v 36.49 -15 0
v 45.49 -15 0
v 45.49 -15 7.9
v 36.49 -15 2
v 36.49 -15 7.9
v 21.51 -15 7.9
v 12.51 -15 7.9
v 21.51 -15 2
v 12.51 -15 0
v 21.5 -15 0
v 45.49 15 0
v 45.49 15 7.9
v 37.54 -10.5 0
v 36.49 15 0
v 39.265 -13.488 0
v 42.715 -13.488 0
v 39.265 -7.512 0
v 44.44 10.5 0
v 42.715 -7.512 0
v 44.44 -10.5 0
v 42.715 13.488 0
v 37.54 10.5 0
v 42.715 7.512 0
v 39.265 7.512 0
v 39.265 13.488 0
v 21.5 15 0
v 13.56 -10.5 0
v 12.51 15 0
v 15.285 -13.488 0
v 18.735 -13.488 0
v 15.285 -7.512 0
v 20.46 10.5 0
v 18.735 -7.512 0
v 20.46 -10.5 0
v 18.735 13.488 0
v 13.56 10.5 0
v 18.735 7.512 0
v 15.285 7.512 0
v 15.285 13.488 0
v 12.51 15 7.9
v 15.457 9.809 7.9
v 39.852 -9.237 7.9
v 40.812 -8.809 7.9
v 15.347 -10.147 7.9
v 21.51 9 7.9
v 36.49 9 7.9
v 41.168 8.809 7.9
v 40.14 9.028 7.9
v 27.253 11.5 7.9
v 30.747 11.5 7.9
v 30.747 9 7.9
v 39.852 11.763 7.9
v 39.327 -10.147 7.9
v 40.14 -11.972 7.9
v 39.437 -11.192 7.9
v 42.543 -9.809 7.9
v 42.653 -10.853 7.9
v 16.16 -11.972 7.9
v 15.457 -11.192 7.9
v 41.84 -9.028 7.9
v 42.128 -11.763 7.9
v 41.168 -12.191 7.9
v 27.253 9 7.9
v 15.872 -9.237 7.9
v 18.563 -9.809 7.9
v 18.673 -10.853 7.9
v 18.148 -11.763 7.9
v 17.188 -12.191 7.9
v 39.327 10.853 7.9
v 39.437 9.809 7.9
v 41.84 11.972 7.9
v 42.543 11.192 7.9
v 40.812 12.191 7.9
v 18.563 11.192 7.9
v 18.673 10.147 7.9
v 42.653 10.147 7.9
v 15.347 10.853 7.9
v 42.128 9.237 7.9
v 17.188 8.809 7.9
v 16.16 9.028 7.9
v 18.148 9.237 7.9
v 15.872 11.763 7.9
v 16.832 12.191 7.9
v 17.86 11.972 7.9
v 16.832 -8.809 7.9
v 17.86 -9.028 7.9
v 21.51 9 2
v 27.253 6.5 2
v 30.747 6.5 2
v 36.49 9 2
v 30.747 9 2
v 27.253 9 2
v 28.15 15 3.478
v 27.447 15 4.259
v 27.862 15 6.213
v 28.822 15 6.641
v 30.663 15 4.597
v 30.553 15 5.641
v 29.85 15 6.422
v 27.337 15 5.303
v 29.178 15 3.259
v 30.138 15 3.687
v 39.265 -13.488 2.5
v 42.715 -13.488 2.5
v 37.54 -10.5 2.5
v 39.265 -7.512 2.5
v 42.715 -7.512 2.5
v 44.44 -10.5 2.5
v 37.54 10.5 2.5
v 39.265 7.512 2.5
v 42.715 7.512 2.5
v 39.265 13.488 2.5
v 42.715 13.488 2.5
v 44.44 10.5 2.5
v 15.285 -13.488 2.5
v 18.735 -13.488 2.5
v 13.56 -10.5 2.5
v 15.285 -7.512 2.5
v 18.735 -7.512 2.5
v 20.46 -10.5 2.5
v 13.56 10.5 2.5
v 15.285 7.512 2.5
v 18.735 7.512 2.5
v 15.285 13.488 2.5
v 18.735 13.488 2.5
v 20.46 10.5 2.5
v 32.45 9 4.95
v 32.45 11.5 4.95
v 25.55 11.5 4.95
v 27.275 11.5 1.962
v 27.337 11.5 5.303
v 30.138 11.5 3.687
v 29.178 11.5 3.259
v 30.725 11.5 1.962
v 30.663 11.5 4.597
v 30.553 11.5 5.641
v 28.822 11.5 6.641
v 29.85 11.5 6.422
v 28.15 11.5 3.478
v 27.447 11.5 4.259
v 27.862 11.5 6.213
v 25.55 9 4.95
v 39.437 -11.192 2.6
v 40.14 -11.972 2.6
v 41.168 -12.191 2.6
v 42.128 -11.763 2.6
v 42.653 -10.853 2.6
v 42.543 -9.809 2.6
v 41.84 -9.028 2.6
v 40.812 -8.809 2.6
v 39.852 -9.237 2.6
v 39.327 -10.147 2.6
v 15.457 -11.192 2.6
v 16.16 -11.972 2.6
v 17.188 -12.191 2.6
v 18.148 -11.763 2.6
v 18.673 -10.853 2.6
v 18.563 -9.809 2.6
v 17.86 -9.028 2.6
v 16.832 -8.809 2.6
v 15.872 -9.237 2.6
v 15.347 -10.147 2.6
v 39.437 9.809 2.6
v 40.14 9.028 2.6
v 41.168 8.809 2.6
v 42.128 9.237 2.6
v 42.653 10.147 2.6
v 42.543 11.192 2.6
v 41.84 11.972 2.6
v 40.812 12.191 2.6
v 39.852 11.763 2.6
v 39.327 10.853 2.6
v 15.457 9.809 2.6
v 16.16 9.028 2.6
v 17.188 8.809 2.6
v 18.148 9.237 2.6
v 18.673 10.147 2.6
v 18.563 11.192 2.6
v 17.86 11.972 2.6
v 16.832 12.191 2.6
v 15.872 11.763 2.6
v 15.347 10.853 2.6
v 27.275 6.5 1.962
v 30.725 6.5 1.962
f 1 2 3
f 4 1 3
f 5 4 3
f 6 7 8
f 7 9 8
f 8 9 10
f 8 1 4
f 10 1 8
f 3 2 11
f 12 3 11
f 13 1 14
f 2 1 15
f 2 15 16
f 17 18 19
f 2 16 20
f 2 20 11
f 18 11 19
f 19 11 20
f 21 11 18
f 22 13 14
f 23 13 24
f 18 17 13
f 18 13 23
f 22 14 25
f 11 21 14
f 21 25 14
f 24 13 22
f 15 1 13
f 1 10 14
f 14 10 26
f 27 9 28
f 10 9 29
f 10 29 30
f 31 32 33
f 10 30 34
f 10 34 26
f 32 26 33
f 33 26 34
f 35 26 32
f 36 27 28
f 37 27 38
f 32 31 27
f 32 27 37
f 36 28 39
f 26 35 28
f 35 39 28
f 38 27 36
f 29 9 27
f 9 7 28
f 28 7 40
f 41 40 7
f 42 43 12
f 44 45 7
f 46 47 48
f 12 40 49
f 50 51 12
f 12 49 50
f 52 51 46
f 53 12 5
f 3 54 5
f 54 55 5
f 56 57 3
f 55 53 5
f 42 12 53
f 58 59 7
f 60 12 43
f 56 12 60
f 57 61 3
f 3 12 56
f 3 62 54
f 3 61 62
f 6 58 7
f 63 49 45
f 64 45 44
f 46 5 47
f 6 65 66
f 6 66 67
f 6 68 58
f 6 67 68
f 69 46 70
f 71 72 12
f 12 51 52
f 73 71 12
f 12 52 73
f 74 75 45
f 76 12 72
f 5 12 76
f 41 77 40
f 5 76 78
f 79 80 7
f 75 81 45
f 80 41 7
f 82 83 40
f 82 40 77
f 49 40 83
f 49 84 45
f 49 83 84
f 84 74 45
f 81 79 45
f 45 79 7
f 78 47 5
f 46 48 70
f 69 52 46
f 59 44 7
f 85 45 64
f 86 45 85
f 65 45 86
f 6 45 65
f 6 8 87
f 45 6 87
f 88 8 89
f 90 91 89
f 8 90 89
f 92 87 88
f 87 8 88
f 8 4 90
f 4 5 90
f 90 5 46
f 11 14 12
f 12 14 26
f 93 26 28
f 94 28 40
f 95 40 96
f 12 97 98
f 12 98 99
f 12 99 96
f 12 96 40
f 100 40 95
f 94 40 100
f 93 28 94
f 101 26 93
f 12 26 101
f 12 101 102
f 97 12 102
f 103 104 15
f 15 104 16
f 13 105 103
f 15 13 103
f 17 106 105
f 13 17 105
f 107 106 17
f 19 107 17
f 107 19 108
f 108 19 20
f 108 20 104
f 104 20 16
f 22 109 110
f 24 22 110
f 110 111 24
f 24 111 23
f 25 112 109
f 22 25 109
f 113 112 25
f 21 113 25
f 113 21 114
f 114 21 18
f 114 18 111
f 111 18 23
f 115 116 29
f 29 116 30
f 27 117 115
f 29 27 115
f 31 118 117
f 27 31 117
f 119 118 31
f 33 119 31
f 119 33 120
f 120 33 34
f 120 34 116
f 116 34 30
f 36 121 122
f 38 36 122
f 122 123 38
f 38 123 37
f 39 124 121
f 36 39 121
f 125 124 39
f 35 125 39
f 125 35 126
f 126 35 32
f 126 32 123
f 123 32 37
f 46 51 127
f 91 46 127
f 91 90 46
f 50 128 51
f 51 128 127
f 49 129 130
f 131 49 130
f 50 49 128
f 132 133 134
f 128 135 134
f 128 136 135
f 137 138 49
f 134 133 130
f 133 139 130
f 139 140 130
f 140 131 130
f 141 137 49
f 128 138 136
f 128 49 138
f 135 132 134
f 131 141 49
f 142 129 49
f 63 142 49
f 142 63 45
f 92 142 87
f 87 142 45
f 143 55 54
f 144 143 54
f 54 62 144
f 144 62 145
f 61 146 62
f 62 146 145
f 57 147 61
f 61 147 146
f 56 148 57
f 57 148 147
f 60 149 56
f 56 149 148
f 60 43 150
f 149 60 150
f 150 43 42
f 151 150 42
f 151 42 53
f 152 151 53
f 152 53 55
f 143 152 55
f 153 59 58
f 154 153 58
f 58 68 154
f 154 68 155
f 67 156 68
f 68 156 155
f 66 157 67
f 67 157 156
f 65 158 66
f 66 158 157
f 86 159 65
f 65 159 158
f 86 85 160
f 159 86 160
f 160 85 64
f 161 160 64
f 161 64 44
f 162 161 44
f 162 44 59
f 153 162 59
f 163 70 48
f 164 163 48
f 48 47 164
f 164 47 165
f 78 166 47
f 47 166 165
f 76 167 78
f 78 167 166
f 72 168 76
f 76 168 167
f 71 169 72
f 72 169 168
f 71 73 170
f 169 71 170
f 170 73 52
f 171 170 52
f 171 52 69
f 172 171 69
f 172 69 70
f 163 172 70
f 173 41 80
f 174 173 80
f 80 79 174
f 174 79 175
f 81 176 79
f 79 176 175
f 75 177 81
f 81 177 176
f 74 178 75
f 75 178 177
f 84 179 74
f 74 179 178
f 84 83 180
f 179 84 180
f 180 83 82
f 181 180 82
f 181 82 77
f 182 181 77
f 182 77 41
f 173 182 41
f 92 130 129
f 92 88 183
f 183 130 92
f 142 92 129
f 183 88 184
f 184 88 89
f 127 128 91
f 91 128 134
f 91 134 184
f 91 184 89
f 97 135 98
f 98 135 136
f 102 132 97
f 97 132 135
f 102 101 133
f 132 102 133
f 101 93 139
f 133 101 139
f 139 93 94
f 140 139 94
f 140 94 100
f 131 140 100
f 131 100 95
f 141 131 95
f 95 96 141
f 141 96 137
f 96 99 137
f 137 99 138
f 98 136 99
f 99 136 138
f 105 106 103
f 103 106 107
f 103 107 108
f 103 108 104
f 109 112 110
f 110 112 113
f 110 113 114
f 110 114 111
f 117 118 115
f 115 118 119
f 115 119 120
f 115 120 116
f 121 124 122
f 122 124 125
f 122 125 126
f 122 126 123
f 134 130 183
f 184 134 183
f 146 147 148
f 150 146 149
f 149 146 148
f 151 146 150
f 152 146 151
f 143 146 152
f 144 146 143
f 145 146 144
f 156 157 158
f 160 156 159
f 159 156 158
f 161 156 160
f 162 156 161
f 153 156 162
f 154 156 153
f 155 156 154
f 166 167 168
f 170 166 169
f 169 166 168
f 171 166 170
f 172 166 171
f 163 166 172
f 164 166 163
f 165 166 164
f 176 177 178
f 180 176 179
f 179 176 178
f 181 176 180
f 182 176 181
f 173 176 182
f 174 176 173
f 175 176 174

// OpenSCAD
// Y-belt retainer/tensioner
// May 2012 John Newman
// June 2012 Luis Andrade

// This parameter deterimes how far the belt is held above the deck
dRise = 0;				// Added to the depth to make the belt run horizontal

// Belt dimensions - These are for T5
//tBase = 1.5;			// Thickness of belt base
//tFull = 2.7;			// Thickness of Belt at teeth
//wTooth = 2.6;			// Width of tooth (not actual, req)
//wSpace = 2.4;			// Width of space

// Belt dimensions - These are for T2.5
//tBase = 1.25;			// Thickness of belt base
//tFull = 2.0;			// Thickness of Belt at teeth
//wTooth = 1.4;			// Width of tooth (not actual, req)
//wSpace = 1.1;			// Width of space

// Belt dimensions - These are for GT2 2mm
tFull = 1.6;			// Thickness of Belt at teeth
tTooth = 0.8;			// Thickness of Belt teeth
tBase = tFull - tTooth;	// Thickness of belt base
wTooth = 2.0;			// GT Belt pitch
wSpace = 0.0;			// Width of space (not used in GT2)

// Defines the belt to be used
// 0 = T5
// 1 = T2.5
// 2 = GT2
belt = 2;
wBelt = 6.1;				// Width of belt

// Misc params
wHex = 6.9;				// Width of trap for hex nut
dHex = 2.5;				// Depth of trap for hex nut
rM3 = 1.7;				// Radius of M3 bolt hole
sDrop = wHex/2-0.5; 	// Driver screw drop from base of slider
Adjust = 0.5;			// Spacing for things to fit inside other things!
pWidth = 9;				// Screw platform width

// Base parameters
bwExt = 15;				// Widest part of base
bwInt = 15;				// inside width, where slider goes
blExt = 30;				// Overall length of base
blHed = 6;				// Head of base whch takes the strain !
bdExt = 12;			// This included a minimum floor thickness of 2mm (?)
bRoof = 2;			// The thickness of the roof which holds the slider in
bFloor = 2;				// The thickness of the floor under the slider (minimum)
bdSoc = bdExt-(bRoof+bFloor);		// 'Socket' depth for slider to go in

// Slider parameters
swMax = bwInt - Adjust;		// Wide part of slider
sdMax = bdSoc-Adjust;		// Height of slider

lBelt = blExt*2;			// Length of a bit of belt!
rMsk = blExt/3 ;			// Radius of part of mount masking...
resol = 10;				// Resolution of the holes

//=====================================================

rotate([0,0,90]) {


	// Upper part
	difference() {
		translate([0, -1*(bwExt+pWidth+5), bdExt/2]) 
		basepart();

		translate([0,-1*(bwExt+pWidth+5), bdExt+1.9])
		cube([blExt+10, bwExt+pWidth+12, bdExt], center = true);
	}

}


//=====================================================

module basepart() {
	union() {
		difference() {
			translate([0,0,dRise/2]) 
			cube([blExt,bwExt,bdExt+dRise],center=true);

			// Remove the space for the slider
			translate([-blHed,0,(bFloor-bRoof)/2]) 
			cube([blExt,bwInt,bdSoc],center=true);

			// Remove a hole for the bolt
			translate([(blExt/2-(blExt+blHed-1)),0,bFloor+sDrop-bdExt/2]) 
			rotate([30,0,0]) 
			rotate([0,90,0]) 
			cylinder(h = blExt+blHed,r = rM3, $fn=resol);

			// An indentation for the bolt head
			translate([(blExt/2)-(blHed+5-dHex),0,bFloor+sDrop-bdExt/2]) 
			rotate([30,0,0]) 
			rotate([0,90,0]) 
			cylinder(5,wHex/2,wHex/2,$fn=6);

			// A slot for the belt to come through
			translate([blExt/2,0,(bdExt-tFull)/2-bRoof-0.1]) 
			cube([blExt+blHed,wBelt+2,tFull+0.1],center=true);
		}

		for (i = [-1:1])
		if (i != 0) {
			translate([0,i*(bwExt/2 + (pWidth/2-0.01)),(bdExt/2-bdExt/2)+dRise/2]) 
			rotate([180,0,0])
			screwmount() ;
		}
	}
}

//=====================================================

module belt_gt2() {
	cube([lBelt,wBelt,tBase]) ;
	for (inc = [0:wTooth:lBelt-wTooth]) 
		translate([inc,wBelt,tBase]) 
		rotate([90,0,0])
		cylinder(h = wBelt, r=tTooth, $fn=20);
}

//=====================================================

module belt() {
	cube([lBelt,wBelt,tBase]) ;
	for (inc = [0:(wTooth+wSpace):lBelt-wTooth]) 
		translate([inc,0,tBase-0.01]) 
		cube([wTooth,wBelt,(tFull-tBase)]) ;
}

//=====================================================

module screwmount() {
	difference() {
		cube([blExt,pWidth,bdExt+dRise],center=true);

		// Bolt holes (not passthrought to generate bridge)
		for (i = [-1:1]) {
			if (i != 0)
			translate([i*(blExt-pWidth)/2,0,-(bdExt/2+dRise/2)-0.1]) 
			rotate([0,0,30]) 
			cylinder(h = bdExt+dRise-dHex, r = rM3,$fn=resol);
		}

		// Nut traps
		for (i = [-1:1]) {
			if (i != 0)
			translate([i*((blExt-pWidth)/2), 0, (bdExt/2-dHex)+dRise/2]) 
			rotate([0,0,30]) 
			cylinder(h=dHex+0.1, r=wHex/2,$fn=6);
		}
	}
}
